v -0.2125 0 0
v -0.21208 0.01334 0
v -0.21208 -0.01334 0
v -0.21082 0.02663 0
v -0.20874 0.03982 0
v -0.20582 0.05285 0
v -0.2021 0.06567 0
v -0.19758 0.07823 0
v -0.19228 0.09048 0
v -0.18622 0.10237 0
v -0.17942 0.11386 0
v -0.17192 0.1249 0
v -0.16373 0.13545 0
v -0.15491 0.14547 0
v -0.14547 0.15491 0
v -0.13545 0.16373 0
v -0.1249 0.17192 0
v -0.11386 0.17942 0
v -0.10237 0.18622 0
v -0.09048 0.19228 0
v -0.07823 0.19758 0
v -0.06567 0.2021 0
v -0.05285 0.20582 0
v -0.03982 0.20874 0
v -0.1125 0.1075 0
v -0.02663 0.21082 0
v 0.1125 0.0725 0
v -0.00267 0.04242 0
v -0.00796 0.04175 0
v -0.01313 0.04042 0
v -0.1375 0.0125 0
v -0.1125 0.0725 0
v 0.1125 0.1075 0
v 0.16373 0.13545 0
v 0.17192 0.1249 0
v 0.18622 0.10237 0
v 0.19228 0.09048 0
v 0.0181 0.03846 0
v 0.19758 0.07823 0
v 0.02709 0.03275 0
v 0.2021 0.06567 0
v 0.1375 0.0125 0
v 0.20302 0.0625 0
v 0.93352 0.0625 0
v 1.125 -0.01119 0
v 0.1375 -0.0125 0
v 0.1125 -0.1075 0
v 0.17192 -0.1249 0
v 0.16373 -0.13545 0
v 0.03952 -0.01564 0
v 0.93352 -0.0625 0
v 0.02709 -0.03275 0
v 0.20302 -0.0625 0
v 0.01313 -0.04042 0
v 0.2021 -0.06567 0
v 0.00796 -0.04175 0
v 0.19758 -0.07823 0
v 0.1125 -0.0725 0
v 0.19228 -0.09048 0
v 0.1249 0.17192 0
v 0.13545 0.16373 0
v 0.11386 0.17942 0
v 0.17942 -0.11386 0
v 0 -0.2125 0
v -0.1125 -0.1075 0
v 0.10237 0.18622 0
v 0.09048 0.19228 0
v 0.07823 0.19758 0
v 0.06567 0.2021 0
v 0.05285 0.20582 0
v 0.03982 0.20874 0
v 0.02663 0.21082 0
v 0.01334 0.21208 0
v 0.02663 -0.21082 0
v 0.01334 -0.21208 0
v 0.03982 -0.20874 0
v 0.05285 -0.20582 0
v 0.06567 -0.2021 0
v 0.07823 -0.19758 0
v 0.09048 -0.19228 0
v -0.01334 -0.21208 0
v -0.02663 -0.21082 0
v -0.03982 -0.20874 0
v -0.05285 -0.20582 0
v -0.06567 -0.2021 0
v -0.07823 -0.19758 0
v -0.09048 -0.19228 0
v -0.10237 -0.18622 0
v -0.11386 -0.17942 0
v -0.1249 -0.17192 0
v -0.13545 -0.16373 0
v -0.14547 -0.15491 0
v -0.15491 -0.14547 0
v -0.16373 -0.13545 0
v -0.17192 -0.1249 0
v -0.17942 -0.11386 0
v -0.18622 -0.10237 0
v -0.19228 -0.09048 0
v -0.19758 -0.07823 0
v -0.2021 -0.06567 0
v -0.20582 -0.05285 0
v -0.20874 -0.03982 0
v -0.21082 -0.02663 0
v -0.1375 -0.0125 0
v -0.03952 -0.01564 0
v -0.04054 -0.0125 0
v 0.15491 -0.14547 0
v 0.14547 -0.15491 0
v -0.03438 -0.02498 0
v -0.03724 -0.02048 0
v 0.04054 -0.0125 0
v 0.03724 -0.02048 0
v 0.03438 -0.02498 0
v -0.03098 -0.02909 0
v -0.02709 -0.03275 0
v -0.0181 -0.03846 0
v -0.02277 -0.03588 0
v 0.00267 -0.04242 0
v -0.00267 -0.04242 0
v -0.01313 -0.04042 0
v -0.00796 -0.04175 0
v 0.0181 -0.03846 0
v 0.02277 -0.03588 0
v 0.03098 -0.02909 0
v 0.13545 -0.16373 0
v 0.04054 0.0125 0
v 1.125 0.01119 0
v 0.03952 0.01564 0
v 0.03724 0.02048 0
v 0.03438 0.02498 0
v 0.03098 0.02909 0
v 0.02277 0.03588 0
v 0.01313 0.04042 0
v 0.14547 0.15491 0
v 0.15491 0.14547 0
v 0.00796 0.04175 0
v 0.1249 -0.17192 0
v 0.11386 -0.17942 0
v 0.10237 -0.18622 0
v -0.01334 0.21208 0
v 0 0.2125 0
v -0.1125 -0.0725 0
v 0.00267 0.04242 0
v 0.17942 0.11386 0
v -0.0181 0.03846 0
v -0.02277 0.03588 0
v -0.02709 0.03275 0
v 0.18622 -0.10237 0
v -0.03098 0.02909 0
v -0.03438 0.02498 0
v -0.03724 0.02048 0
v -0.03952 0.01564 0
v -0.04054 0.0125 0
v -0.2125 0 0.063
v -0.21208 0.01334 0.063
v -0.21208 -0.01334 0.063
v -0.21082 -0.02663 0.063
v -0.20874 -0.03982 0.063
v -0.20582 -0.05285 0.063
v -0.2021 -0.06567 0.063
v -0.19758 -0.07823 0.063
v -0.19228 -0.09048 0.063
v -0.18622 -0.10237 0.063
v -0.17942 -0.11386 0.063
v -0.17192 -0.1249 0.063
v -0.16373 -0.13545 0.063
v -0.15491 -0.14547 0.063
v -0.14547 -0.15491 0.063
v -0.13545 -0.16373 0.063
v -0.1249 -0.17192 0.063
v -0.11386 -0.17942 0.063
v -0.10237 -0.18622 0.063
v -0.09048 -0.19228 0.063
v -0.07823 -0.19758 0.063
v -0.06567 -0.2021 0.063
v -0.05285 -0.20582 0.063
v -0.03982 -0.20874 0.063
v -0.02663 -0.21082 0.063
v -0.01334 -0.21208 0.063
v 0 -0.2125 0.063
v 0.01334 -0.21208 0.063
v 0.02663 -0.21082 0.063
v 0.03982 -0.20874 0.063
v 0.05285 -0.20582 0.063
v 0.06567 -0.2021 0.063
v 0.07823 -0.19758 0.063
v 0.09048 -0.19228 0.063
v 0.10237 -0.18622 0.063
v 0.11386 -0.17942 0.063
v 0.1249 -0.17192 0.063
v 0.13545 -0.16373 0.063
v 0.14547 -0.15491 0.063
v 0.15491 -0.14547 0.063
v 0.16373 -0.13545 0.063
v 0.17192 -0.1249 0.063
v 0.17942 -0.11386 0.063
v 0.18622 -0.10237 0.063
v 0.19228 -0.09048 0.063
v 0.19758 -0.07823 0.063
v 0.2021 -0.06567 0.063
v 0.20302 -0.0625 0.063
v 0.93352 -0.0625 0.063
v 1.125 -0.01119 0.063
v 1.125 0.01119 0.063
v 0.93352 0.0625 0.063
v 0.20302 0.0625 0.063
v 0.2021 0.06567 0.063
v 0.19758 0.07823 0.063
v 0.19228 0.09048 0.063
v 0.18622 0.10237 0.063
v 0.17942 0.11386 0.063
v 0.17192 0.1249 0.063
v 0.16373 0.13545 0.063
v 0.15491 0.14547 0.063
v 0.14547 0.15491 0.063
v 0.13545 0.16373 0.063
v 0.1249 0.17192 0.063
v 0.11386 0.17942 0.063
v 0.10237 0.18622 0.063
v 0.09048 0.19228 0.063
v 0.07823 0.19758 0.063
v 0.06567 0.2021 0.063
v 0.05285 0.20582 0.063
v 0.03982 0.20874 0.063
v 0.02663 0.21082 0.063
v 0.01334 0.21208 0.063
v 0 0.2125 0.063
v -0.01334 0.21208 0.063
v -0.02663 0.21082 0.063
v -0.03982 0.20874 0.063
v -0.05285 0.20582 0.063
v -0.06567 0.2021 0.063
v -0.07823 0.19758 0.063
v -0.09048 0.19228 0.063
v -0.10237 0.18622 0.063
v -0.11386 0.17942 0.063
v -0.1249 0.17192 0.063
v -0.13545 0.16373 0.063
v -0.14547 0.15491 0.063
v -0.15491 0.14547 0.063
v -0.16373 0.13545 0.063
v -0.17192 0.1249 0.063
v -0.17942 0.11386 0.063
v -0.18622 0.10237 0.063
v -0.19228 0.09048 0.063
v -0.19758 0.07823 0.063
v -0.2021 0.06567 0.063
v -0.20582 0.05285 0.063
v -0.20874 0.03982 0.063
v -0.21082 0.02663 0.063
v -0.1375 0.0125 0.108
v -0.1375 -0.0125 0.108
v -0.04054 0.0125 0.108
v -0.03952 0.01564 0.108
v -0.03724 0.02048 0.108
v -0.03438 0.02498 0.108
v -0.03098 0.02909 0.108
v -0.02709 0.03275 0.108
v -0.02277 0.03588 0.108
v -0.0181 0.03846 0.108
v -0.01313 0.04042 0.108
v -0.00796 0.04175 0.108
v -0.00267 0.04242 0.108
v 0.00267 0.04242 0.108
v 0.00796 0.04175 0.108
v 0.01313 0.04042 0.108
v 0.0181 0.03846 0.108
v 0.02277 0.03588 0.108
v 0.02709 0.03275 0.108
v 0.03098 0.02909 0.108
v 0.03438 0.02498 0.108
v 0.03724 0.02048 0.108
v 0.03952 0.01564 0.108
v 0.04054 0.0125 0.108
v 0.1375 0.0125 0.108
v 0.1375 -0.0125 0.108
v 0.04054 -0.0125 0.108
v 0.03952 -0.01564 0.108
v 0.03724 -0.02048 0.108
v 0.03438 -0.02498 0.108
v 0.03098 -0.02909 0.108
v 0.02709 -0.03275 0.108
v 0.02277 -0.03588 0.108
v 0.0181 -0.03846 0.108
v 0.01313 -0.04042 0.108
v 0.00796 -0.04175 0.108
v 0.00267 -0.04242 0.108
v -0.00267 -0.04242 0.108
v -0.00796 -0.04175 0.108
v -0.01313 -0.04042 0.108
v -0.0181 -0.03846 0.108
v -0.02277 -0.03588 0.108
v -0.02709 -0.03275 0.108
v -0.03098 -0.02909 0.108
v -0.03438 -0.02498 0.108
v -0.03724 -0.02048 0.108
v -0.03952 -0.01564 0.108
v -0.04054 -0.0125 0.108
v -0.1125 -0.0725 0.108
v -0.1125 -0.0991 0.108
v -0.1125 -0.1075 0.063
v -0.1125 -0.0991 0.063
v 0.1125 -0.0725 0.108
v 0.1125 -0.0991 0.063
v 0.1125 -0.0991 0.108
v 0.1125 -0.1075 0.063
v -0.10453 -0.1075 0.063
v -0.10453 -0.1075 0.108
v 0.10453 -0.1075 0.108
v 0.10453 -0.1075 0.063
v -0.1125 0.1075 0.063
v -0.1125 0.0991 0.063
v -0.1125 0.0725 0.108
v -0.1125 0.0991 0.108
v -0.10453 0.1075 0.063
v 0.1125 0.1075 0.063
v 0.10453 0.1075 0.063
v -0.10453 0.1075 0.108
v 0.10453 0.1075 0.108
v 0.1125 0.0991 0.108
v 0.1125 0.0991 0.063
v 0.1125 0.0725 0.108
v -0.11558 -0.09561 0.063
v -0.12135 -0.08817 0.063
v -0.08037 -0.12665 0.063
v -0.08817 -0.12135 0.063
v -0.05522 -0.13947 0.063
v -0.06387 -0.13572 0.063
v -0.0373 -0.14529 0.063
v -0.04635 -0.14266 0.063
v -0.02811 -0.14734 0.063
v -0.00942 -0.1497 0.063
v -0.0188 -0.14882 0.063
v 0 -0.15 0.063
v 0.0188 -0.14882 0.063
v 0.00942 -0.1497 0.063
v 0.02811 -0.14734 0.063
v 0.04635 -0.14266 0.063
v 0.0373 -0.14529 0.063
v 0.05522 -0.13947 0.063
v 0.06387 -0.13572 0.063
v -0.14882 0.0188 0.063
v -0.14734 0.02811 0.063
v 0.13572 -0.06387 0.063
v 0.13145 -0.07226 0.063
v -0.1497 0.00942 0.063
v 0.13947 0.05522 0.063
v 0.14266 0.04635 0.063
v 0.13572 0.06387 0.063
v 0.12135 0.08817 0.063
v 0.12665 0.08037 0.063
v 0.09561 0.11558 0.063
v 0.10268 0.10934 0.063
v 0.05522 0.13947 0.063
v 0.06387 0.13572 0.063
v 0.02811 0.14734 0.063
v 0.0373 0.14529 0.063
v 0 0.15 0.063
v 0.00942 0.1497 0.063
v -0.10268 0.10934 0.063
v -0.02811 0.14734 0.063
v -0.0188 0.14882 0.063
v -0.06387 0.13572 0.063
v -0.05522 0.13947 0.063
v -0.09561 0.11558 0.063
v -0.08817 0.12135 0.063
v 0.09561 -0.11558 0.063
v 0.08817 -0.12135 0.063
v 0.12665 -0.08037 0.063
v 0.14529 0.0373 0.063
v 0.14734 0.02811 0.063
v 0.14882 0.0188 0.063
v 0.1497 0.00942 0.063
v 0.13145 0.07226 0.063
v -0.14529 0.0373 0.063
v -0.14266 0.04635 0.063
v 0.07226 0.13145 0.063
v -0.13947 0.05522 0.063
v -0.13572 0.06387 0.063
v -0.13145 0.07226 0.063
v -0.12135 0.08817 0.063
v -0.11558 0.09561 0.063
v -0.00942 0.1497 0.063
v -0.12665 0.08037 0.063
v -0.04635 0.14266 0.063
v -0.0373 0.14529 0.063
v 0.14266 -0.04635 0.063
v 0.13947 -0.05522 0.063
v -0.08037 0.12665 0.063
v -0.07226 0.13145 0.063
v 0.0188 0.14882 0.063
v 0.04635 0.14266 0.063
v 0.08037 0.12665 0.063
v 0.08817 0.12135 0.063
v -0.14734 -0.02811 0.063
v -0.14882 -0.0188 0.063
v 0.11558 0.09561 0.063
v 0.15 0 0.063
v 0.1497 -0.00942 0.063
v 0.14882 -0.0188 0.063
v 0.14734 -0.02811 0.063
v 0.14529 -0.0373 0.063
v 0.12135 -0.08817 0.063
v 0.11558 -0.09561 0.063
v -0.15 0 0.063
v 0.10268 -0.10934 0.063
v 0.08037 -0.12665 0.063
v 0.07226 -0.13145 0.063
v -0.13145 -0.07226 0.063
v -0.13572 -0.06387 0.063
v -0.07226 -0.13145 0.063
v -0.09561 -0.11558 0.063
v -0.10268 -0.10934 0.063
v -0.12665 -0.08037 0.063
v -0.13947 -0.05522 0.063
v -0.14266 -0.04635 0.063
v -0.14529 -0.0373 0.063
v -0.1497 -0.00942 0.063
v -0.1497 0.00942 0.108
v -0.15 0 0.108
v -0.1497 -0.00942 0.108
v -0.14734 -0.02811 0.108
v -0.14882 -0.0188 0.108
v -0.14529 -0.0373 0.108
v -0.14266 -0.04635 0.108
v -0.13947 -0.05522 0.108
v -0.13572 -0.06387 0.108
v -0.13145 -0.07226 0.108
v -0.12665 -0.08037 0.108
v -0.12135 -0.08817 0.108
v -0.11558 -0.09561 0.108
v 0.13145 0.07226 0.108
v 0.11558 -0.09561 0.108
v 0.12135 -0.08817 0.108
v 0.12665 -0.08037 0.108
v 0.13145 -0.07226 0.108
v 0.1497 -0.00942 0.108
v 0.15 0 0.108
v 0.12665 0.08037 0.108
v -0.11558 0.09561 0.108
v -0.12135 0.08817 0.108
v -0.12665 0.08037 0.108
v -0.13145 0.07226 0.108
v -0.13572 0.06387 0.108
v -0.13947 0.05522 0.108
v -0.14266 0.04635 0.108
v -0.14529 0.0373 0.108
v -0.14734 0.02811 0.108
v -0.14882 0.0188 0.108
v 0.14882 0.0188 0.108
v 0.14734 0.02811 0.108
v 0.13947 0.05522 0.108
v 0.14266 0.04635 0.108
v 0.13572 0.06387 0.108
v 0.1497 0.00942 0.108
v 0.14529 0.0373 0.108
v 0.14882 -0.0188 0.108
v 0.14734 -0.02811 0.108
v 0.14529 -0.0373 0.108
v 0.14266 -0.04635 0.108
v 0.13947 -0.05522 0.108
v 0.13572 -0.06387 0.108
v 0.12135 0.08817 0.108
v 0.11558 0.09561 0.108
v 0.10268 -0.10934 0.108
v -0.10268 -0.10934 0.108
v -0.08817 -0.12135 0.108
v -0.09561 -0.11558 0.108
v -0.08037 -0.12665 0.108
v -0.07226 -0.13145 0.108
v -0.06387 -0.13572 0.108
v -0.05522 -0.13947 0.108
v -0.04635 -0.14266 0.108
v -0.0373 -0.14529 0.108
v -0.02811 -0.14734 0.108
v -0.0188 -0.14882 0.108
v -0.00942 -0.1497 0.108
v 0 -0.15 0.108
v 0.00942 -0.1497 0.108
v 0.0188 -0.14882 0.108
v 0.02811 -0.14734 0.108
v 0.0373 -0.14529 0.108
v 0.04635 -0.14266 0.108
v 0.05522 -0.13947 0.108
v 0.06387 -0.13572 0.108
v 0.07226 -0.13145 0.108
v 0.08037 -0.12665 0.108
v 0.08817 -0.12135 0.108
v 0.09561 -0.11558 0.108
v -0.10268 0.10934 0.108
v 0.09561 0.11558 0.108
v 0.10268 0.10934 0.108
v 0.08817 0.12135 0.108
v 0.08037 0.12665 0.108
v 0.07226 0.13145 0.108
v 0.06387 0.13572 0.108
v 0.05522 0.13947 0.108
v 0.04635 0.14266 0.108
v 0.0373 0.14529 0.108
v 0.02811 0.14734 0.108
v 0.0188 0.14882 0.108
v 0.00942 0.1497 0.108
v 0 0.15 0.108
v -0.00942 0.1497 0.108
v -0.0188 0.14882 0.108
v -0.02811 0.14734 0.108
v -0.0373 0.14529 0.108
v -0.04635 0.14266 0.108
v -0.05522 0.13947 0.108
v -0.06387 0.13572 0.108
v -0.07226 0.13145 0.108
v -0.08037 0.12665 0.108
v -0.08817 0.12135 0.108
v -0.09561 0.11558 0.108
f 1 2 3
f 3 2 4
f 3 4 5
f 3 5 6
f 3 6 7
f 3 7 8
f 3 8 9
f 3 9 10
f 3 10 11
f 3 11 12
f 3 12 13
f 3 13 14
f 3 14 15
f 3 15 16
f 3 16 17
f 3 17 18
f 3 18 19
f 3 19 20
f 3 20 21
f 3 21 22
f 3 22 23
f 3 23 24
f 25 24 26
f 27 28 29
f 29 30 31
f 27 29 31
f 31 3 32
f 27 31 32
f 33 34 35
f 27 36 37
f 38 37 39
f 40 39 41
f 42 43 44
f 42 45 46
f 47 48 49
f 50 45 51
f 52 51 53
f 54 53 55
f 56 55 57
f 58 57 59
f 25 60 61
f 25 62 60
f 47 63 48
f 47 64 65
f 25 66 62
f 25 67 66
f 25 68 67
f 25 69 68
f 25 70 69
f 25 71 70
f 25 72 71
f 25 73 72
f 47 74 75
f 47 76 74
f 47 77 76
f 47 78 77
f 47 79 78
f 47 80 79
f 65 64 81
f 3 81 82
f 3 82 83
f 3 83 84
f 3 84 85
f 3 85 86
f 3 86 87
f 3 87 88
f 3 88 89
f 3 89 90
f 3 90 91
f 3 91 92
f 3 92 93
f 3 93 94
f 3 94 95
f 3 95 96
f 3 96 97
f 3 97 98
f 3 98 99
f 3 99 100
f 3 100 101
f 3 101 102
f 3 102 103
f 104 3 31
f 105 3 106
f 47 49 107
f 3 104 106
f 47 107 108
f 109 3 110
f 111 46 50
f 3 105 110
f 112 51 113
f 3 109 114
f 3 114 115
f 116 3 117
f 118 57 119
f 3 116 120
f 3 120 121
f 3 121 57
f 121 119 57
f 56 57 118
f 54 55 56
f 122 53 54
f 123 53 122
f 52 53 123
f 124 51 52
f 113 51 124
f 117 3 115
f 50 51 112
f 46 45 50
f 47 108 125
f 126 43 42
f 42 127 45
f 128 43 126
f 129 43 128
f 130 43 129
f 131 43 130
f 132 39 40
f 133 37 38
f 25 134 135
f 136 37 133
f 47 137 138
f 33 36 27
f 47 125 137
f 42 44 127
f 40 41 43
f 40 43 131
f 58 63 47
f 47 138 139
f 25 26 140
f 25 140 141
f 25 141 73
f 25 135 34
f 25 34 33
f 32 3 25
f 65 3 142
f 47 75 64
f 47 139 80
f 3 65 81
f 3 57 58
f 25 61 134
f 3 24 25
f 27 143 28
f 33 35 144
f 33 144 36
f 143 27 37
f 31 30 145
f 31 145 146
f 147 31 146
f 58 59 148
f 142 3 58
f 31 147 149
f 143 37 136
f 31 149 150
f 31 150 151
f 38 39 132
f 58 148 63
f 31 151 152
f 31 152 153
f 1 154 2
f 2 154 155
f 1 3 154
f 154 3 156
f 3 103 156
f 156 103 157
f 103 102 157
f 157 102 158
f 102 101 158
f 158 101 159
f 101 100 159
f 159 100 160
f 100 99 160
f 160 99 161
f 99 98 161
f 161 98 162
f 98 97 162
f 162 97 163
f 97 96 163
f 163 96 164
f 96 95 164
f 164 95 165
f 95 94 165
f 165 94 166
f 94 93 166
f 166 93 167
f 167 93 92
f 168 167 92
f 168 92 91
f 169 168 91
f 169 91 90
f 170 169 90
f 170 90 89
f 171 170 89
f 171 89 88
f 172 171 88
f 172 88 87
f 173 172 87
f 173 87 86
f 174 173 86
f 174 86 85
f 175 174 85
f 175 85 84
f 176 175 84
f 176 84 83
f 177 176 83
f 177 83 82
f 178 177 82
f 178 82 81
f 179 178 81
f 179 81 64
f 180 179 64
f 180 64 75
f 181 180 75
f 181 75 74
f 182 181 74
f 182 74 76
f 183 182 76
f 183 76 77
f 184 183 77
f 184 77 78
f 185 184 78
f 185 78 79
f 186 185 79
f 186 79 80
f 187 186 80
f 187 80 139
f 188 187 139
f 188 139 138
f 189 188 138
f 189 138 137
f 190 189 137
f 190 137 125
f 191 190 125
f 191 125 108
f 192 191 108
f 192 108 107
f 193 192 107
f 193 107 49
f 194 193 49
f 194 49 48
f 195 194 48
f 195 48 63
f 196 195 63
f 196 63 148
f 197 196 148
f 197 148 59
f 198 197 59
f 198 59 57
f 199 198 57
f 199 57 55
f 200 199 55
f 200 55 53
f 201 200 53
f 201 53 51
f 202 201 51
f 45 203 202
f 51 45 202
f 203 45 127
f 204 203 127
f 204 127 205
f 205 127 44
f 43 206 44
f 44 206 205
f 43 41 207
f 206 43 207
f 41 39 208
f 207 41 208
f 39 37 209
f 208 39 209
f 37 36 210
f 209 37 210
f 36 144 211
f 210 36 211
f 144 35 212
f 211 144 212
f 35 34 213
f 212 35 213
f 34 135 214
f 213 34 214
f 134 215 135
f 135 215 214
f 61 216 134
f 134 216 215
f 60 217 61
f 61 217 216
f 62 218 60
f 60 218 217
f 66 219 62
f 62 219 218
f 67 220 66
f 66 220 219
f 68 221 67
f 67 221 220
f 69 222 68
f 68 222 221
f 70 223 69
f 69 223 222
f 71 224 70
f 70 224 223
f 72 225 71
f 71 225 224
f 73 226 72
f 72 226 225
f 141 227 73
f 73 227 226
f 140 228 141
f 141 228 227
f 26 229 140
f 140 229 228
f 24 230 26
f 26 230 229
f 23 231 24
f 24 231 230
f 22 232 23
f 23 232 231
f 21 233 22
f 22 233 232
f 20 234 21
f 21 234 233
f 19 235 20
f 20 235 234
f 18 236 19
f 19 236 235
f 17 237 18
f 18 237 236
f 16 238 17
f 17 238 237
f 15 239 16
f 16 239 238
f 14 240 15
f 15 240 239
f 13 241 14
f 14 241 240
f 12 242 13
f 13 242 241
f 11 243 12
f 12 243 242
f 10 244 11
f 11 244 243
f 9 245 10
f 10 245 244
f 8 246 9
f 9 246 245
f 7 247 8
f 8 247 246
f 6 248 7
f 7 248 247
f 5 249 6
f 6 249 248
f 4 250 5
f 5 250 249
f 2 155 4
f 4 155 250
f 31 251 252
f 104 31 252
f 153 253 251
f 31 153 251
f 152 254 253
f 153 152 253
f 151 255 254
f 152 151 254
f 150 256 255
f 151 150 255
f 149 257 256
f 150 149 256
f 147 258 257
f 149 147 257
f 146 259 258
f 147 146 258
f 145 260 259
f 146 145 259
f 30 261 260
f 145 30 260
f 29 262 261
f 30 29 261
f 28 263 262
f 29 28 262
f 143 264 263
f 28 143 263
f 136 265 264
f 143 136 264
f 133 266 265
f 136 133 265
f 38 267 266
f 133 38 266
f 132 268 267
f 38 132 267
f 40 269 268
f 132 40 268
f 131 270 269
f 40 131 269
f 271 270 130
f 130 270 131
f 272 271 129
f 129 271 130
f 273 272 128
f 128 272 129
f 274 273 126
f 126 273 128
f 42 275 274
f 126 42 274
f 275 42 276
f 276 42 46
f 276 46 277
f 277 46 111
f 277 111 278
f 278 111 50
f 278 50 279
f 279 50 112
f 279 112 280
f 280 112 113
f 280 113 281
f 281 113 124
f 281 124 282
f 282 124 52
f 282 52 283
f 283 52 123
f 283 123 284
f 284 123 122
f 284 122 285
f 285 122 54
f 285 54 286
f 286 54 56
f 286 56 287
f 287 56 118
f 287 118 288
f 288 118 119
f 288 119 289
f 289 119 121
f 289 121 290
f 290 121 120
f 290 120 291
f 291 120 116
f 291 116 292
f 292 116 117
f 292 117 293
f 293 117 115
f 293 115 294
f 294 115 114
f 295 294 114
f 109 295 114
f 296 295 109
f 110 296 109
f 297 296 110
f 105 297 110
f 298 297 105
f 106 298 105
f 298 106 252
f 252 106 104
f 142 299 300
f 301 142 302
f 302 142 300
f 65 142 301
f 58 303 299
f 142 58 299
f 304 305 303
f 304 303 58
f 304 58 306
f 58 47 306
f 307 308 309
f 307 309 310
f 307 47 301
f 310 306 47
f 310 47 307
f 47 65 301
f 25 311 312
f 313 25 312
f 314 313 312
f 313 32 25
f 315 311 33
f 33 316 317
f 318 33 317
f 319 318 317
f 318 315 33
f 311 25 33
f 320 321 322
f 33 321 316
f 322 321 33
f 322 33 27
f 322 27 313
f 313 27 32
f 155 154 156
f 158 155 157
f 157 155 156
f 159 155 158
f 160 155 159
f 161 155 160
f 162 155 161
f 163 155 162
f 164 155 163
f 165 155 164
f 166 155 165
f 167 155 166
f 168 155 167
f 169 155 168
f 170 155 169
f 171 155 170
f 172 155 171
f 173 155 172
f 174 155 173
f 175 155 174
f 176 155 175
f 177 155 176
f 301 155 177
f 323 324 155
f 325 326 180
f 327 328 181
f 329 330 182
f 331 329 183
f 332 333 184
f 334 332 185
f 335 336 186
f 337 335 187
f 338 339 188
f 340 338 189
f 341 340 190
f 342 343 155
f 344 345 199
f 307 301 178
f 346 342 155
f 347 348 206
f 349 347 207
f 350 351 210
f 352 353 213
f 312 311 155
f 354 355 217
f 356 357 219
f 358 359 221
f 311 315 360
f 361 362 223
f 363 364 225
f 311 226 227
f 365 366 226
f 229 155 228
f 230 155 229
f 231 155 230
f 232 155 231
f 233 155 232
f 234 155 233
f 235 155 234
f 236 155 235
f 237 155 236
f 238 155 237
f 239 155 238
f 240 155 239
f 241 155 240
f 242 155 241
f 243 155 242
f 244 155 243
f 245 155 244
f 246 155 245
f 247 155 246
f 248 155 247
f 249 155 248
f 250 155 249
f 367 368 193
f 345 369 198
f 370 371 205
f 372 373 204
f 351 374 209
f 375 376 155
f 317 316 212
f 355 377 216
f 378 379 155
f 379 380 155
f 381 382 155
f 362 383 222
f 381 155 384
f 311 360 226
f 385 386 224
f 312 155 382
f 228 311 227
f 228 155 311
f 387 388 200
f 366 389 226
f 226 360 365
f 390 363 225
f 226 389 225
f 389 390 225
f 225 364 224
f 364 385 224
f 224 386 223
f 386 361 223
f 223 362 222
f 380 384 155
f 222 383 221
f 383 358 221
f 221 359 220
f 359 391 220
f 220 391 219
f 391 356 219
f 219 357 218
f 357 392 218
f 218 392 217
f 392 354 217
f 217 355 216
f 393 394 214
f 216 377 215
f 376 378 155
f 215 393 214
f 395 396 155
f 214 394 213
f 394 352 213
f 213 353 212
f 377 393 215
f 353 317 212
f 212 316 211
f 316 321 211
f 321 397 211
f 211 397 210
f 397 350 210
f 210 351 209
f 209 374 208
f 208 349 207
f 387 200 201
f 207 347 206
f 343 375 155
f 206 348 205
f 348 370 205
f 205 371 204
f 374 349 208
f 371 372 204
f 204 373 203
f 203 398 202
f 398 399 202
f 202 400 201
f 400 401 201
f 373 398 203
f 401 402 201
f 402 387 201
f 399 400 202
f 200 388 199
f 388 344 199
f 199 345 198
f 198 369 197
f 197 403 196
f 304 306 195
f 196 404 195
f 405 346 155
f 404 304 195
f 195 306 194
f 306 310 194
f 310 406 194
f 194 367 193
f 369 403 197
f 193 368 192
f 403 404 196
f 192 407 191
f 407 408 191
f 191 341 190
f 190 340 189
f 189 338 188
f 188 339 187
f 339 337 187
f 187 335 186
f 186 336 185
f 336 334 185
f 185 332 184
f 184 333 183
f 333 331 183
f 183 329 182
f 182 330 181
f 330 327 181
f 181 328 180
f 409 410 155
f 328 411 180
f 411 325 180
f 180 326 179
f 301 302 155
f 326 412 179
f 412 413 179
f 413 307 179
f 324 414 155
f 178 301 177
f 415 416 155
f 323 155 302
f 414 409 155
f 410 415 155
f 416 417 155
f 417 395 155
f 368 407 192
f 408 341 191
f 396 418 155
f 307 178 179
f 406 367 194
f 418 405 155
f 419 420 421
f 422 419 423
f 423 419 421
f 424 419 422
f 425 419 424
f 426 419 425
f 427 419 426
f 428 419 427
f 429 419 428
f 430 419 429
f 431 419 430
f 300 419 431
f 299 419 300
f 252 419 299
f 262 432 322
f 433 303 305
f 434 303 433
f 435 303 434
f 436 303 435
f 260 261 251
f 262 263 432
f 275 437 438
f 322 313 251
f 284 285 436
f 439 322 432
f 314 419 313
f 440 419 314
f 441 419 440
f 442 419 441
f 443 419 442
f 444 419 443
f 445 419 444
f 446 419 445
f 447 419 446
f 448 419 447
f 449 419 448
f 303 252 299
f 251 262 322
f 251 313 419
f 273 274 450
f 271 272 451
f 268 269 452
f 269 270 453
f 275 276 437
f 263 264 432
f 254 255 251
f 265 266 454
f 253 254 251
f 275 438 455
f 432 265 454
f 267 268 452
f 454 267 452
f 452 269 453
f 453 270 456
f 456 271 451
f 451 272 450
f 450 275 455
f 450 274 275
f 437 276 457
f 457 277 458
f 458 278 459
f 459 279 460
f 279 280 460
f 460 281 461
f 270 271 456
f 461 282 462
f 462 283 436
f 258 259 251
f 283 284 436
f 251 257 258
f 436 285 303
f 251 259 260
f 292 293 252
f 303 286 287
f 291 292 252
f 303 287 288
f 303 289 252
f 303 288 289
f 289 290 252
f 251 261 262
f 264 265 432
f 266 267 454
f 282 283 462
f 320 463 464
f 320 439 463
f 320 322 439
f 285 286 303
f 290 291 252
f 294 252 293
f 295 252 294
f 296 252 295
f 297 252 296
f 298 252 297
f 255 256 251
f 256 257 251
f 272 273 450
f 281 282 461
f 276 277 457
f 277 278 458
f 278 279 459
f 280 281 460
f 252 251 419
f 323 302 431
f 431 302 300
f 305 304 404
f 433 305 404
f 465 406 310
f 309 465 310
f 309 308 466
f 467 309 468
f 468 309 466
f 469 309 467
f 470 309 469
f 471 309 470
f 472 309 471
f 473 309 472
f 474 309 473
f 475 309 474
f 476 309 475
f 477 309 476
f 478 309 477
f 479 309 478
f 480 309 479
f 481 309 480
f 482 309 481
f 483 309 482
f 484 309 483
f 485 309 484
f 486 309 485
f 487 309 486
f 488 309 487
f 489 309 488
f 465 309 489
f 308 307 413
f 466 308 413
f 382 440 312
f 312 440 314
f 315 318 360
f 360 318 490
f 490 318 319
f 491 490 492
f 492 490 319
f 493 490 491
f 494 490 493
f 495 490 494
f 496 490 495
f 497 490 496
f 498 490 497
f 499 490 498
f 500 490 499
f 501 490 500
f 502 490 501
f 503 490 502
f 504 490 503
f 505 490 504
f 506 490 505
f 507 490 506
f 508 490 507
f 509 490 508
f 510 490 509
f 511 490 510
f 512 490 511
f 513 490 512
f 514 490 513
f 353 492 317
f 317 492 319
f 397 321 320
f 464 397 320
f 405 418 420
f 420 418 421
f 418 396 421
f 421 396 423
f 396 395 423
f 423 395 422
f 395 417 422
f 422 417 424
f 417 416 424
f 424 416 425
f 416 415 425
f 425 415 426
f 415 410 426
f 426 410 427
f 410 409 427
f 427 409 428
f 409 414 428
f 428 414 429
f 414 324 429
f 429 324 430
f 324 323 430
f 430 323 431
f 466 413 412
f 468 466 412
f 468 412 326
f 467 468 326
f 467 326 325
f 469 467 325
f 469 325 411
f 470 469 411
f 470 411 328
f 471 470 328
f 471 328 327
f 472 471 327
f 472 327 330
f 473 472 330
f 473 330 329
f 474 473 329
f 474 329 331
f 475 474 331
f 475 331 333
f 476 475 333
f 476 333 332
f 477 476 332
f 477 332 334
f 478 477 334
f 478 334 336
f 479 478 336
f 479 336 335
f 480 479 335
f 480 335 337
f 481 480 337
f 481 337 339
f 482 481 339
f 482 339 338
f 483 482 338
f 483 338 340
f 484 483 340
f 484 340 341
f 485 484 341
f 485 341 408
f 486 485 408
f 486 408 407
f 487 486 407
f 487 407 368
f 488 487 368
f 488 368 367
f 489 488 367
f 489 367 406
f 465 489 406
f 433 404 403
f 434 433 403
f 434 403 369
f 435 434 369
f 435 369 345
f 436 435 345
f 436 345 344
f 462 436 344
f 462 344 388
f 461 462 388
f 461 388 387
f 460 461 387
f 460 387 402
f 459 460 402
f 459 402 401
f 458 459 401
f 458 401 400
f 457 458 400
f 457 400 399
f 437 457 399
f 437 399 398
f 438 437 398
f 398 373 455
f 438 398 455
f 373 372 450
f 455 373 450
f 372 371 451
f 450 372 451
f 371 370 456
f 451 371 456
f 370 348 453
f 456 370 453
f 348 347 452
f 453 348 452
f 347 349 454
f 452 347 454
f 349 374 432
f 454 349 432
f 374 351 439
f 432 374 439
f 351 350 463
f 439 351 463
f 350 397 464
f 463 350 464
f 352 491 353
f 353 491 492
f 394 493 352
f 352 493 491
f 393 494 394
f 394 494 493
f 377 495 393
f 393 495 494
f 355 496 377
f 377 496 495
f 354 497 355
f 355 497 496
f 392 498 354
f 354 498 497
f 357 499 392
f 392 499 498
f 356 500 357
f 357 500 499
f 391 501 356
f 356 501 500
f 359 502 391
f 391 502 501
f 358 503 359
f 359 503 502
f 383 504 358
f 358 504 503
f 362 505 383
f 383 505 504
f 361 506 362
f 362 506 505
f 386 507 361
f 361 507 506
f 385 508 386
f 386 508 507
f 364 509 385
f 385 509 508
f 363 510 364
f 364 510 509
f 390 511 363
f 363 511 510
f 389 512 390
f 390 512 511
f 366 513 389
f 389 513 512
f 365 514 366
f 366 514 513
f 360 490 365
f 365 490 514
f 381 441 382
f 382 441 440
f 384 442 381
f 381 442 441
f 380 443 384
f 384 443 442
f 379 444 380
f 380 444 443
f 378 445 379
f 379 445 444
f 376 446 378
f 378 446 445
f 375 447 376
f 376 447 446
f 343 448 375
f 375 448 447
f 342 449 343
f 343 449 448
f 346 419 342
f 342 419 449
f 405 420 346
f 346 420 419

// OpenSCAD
indicatorHeight = 0.063;
indicatorWidth  = 0.125;
indicatorLength = 1.125;

difference() {
  union() {
    translate([indicatorLength/2, 0, indicatorHeight/2])
      cube([indicatorLength, indicatorWidth, indicatorHeight], center = true);

    cylinder(h = indicatorHeight + 0.045, d = 0.300, center = false, $fn = 100);

    cylinder(h = indicatorHeight, d = 0.425, center = false, $fn = 100);
  }

  cylinder(h = 0.500, d = 0.085, center = true, $fn = 50);
  translate([0, 0.090, 0])
    cube([0.225, 0.035, 1], center=true);
  cube([0.275, 0.025, 1], center=true);
  translate([0, -0.090, 0])
    cube([0.225, 0.035, 1], center=true);

  translate([indicatorLength + 0.05, indicatorWidth/2, 0])
    rotate([0,0,75])
     cube([indicatorWidth, indicatorLength/2, 2.5*indicatorHeight], center = true);

  translate([indicatorLength + 0.05, -indicatorWidth/2, 0])
    rotate([0,0,-75])
       cube([indicatorWidth, indicatorLength/2, 2.5*indicatorHeight], center = true);

}
